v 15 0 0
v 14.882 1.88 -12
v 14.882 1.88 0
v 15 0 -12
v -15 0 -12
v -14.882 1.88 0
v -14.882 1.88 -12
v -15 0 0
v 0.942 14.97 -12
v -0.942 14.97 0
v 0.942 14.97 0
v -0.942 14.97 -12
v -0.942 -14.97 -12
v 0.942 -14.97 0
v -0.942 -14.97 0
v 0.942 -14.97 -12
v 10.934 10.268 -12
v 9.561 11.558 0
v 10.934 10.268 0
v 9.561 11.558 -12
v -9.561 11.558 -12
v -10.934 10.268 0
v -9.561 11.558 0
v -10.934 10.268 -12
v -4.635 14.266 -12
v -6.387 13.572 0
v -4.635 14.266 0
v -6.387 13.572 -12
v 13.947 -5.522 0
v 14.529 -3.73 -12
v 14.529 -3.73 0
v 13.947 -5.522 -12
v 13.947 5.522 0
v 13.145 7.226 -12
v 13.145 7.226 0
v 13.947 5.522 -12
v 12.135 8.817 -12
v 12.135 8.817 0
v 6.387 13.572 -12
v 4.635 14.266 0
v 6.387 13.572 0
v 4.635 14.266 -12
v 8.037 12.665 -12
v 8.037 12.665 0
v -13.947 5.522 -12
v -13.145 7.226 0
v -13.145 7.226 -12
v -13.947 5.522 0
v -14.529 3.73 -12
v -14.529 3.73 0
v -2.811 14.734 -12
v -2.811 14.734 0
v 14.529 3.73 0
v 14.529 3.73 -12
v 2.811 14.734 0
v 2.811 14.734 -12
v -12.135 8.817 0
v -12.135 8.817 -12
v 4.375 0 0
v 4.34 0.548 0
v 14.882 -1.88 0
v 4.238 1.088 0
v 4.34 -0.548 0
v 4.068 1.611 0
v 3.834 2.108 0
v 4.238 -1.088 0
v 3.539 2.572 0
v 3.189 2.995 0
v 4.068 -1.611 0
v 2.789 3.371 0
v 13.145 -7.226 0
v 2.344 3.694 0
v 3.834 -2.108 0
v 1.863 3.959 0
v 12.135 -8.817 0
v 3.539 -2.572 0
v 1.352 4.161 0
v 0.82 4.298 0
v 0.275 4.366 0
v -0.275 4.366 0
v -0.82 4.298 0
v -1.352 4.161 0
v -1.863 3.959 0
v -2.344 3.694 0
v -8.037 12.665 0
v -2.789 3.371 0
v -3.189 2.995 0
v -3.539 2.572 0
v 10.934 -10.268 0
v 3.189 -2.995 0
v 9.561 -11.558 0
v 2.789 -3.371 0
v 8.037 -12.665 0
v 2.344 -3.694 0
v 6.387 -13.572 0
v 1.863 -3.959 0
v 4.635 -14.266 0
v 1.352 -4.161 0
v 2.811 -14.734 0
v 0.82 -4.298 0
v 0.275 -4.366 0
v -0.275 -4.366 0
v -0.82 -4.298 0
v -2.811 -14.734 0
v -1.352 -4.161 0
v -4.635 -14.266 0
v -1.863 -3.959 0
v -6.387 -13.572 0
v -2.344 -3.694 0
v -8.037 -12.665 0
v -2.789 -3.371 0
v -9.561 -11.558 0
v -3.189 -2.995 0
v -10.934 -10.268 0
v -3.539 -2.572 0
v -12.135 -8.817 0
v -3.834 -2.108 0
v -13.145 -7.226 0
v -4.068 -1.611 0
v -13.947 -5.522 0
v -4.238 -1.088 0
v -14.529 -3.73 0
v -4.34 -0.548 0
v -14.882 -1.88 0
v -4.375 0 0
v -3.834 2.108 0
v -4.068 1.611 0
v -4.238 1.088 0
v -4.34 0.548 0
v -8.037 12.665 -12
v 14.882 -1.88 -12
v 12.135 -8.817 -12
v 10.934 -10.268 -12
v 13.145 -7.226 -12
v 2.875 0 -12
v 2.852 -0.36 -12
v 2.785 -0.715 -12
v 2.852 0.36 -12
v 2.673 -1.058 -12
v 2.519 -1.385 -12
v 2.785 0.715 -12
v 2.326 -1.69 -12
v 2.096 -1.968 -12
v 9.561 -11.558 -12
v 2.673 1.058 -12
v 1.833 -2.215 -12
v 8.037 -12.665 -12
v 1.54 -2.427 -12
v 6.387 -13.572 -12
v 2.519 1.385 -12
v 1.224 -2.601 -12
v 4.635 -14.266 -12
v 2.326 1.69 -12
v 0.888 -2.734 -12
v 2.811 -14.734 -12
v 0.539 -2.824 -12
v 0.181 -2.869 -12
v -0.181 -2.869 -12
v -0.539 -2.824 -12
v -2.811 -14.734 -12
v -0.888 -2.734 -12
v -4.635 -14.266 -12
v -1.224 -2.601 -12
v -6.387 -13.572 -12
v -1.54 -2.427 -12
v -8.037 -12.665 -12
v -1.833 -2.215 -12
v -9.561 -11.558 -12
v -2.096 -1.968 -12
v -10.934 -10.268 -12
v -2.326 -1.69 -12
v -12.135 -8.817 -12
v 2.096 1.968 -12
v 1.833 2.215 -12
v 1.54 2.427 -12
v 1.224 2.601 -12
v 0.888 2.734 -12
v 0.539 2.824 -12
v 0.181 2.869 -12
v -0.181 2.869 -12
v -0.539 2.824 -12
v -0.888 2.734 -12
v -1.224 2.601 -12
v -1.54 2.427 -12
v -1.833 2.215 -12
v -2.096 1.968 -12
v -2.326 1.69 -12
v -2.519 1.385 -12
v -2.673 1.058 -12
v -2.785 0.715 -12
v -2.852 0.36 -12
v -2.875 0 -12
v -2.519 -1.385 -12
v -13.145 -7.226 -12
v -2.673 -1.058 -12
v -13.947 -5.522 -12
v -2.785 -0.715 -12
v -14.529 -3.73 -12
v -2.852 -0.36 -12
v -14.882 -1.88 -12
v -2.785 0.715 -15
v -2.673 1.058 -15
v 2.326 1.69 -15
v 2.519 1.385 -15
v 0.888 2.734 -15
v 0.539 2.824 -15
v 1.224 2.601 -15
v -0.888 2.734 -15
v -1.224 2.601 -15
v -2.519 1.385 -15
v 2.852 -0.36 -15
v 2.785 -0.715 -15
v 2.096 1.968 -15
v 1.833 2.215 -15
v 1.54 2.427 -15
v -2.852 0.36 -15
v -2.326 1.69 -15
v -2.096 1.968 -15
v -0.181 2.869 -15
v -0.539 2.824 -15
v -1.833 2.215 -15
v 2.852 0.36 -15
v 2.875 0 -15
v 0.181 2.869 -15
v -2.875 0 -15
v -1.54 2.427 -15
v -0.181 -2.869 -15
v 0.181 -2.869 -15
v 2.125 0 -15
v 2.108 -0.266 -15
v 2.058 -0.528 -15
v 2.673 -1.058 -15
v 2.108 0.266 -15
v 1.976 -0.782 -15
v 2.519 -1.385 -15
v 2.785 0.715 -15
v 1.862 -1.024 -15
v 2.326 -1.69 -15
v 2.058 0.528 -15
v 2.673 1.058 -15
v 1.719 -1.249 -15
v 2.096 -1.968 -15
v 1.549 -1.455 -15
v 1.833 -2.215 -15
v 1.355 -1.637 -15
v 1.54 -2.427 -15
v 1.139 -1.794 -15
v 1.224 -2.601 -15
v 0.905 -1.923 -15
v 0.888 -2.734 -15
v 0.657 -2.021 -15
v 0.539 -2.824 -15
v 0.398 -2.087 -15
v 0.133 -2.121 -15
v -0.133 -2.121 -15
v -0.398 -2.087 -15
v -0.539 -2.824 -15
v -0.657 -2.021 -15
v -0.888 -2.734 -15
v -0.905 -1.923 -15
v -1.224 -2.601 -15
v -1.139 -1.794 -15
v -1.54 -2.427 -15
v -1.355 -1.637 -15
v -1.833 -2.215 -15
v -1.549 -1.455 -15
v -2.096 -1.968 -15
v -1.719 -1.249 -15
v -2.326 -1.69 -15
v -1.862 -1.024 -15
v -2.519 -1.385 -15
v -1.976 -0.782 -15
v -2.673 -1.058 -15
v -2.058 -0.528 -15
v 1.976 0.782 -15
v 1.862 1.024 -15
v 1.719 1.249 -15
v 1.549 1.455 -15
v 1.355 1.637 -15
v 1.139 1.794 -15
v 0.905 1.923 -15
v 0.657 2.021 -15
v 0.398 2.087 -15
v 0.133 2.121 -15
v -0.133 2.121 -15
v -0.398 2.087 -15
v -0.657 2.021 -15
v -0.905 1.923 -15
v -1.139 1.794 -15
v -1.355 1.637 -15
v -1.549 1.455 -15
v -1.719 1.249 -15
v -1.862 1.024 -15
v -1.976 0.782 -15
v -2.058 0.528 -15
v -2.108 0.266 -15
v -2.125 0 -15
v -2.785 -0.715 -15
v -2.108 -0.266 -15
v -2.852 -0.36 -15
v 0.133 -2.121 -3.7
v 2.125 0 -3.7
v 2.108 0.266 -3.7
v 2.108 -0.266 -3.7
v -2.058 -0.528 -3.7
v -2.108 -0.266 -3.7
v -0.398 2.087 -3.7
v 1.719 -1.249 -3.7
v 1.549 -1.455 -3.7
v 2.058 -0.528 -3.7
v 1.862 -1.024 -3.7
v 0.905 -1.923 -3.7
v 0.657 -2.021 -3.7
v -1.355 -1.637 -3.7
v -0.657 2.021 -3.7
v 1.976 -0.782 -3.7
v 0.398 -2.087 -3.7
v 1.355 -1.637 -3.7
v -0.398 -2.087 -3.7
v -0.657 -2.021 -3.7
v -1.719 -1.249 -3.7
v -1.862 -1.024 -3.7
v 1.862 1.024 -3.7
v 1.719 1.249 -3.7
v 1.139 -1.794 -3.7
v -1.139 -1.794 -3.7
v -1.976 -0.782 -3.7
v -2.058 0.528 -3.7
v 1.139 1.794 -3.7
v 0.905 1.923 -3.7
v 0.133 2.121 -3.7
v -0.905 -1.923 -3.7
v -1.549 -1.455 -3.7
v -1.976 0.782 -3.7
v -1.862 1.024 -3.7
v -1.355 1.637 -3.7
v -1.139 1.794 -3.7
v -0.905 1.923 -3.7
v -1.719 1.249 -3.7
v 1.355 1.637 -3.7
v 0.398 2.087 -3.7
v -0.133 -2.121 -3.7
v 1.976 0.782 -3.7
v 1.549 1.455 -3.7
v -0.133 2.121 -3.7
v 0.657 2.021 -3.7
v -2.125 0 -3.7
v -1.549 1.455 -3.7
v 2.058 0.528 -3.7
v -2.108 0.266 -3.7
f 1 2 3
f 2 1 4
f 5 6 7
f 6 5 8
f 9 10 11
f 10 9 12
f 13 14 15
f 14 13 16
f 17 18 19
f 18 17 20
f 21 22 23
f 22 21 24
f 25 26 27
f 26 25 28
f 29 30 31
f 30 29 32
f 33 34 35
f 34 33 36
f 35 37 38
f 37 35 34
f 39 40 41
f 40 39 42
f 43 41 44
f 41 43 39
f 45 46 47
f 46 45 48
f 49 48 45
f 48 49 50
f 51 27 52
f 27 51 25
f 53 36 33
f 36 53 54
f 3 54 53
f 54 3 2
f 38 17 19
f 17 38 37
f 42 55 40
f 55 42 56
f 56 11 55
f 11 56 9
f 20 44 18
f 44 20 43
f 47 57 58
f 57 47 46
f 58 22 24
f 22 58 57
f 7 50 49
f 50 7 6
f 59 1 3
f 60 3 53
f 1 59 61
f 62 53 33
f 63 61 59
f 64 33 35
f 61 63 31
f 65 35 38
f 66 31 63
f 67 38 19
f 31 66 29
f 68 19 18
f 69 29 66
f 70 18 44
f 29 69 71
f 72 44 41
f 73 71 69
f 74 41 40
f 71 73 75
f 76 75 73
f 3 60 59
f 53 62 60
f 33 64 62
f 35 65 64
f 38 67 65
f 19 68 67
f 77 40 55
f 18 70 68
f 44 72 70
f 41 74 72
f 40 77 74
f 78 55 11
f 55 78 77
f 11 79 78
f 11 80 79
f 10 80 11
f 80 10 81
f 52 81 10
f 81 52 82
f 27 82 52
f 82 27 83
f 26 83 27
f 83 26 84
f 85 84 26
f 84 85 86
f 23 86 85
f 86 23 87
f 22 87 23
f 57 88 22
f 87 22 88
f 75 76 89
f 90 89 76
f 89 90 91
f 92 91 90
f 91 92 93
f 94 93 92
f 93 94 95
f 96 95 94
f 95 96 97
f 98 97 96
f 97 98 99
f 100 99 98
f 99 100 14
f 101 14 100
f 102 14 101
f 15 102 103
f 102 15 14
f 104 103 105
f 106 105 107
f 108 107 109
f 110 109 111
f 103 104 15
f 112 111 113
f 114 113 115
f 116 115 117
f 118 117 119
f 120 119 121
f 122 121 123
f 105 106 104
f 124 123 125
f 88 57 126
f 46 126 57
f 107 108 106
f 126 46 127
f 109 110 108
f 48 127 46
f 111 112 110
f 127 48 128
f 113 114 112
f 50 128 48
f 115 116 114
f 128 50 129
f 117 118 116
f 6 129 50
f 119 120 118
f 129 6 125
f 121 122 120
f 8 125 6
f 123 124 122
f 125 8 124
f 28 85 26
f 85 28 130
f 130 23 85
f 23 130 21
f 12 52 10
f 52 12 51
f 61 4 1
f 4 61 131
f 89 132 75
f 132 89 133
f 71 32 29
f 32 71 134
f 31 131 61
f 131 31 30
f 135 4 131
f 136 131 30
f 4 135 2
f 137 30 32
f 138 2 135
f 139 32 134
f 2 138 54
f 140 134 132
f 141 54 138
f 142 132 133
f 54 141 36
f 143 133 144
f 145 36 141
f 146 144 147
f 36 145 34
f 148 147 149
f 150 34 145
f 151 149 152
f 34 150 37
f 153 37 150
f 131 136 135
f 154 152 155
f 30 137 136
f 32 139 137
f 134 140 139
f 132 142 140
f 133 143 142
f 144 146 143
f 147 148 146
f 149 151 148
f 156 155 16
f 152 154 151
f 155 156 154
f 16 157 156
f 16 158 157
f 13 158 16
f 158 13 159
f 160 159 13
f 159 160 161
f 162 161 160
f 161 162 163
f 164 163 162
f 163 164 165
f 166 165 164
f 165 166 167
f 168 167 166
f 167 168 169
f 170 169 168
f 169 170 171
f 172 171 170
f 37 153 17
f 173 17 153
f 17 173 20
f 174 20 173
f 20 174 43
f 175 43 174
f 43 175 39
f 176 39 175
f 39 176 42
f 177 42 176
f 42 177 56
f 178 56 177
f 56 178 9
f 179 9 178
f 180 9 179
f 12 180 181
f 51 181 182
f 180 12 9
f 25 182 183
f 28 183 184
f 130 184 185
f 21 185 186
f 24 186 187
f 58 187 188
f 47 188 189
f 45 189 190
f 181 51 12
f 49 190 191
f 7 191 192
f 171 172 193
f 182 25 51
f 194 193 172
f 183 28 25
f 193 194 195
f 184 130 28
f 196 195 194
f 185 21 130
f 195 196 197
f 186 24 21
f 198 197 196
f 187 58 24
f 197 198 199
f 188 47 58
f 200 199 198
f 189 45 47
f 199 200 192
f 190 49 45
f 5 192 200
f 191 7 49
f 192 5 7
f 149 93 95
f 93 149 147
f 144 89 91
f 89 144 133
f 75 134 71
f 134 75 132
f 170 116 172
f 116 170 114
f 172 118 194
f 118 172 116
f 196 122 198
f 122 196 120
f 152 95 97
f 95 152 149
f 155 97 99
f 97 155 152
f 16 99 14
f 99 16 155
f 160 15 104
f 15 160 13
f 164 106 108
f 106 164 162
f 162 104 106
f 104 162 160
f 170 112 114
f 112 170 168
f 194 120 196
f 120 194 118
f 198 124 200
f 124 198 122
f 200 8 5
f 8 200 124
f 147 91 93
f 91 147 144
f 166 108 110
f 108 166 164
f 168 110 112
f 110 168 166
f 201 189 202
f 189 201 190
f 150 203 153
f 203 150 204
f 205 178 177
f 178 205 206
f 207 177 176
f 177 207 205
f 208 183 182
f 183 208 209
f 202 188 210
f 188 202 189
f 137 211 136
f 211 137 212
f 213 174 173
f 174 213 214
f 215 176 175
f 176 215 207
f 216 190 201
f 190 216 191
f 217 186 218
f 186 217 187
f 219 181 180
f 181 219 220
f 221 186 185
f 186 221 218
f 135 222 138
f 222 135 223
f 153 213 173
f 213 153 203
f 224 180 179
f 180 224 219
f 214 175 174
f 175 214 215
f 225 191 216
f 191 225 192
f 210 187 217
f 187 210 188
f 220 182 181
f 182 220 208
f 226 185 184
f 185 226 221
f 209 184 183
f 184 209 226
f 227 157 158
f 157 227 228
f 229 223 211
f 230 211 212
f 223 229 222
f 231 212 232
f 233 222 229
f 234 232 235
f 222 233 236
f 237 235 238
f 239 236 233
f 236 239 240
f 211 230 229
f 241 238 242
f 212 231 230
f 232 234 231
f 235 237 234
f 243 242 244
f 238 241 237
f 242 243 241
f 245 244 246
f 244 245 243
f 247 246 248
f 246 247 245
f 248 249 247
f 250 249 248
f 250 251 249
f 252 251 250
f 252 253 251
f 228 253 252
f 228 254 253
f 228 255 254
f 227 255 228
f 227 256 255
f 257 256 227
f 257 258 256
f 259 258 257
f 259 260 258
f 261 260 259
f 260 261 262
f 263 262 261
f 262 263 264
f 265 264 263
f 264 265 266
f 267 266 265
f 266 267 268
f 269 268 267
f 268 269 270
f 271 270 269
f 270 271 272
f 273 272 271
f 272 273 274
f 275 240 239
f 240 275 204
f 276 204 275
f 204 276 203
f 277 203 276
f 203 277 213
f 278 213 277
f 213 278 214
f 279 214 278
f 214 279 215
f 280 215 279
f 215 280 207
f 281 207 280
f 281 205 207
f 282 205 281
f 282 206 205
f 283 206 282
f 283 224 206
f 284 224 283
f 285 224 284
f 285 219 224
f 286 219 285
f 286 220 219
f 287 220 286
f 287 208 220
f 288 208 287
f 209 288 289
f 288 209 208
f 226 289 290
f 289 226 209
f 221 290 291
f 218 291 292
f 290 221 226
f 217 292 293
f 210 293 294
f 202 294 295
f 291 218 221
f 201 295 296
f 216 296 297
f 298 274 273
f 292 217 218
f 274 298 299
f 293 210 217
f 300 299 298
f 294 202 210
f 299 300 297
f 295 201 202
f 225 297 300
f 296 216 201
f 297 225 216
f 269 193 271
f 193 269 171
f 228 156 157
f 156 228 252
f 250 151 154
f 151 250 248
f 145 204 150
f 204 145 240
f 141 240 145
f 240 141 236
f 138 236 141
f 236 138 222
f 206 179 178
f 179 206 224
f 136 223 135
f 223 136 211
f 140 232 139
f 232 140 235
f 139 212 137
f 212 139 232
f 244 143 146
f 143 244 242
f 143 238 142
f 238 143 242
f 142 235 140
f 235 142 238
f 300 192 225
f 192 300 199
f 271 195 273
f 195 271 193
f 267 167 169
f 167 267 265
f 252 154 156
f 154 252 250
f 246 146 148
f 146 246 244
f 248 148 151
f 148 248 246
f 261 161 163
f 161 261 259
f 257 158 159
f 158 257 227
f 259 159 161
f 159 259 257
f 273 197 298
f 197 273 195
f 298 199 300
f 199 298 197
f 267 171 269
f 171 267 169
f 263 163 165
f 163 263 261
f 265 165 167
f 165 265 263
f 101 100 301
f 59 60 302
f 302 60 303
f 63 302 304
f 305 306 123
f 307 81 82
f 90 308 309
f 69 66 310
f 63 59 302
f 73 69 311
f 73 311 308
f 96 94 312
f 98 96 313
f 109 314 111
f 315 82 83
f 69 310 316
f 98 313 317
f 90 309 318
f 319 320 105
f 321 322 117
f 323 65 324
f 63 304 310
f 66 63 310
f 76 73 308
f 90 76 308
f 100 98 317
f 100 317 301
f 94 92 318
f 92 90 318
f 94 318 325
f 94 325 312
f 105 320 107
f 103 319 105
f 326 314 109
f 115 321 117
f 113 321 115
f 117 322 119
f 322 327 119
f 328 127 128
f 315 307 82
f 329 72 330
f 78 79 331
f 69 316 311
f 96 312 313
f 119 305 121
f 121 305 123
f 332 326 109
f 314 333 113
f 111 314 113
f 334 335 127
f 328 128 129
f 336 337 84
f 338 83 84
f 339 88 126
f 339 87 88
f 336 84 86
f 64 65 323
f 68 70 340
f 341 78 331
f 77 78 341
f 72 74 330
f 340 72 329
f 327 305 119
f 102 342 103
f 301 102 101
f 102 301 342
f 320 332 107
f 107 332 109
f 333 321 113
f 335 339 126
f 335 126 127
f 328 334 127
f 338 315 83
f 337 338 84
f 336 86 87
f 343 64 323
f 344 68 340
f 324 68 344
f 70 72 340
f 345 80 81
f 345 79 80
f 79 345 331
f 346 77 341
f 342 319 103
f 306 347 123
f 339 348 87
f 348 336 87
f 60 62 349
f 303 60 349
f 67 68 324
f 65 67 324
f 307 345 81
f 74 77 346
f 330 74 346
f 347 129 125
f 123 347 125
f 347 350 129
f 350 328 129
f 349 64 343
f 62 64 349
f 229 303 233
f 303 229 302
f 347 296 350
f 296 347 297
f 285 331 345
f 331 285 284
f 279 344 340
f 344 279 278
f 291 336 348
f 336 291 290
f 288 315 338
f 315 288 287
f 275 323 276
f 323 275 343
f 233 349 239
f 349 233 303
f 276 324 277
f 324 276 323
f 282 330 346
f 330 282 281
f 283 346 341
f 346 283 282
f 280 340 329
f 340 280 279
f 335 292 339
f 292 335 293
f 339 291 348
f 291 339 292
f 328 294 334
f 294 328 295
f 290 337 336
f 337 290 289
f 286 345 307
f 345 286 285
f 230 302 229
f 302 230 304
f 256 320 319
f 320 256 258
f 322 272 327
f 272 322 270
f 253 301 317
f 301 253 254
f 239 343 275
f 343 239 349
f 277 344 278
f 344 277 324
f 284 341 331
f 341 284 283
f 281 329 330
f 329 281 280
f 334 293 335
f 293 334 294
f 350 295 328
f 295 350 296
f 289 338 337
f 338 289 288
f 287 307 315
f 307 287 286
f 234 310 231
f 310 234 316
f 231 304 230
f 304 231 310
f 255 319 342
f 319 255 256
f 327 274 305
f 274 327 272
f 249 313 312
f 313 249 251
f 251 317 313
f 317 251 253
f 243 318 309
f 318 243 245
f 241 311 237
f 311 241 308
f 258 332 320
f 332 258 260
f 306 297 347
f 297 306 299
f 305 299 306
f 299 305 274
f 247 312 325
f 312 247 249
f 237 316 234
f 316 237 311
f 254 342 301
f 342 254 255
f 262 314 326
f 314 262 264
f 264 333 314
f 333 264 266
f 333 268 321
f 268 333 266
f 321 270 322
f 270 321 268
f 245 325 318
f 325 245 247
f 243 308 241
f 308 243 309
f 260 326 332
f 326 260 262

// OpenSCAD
$fn = 50;


difference() {
	union() {
		translate(v = [0, 0, -12.0000000000]) {
			cylinder(h = 12, r = 15.0000000000);
		}
		translate(v = [0, 0, -15.0000000000]) {
			cylinder(h = 15, r = 2.8750000000);
		}
	}
	union() {
		translate(v = [0, 0, 0]) {
			rotate(a = [0, 0, 0]) {
				difference() {
					union() {
						translate(v = [0, 0, -15.0000000000]) {
							cylinder(h = 15, r = 2.0000000000);
						}
						translate(v = [0, 0, -3.7000000000]) {
							cylinder(h = 3.7000000000, r1 = 2.1250000000, r2 = 4.3750000000);
						}
						translate(v = [0, 0, -15.0000000000]) {
							cylinder(h = 15, r = 2.1250000000);
						}
						translate(v = [0, 0, -15.0000000000]) {
							cylinder(h = 15, r = 2.0000000000);
						}
					}
					union();
				}
			}
		}
	}
}
